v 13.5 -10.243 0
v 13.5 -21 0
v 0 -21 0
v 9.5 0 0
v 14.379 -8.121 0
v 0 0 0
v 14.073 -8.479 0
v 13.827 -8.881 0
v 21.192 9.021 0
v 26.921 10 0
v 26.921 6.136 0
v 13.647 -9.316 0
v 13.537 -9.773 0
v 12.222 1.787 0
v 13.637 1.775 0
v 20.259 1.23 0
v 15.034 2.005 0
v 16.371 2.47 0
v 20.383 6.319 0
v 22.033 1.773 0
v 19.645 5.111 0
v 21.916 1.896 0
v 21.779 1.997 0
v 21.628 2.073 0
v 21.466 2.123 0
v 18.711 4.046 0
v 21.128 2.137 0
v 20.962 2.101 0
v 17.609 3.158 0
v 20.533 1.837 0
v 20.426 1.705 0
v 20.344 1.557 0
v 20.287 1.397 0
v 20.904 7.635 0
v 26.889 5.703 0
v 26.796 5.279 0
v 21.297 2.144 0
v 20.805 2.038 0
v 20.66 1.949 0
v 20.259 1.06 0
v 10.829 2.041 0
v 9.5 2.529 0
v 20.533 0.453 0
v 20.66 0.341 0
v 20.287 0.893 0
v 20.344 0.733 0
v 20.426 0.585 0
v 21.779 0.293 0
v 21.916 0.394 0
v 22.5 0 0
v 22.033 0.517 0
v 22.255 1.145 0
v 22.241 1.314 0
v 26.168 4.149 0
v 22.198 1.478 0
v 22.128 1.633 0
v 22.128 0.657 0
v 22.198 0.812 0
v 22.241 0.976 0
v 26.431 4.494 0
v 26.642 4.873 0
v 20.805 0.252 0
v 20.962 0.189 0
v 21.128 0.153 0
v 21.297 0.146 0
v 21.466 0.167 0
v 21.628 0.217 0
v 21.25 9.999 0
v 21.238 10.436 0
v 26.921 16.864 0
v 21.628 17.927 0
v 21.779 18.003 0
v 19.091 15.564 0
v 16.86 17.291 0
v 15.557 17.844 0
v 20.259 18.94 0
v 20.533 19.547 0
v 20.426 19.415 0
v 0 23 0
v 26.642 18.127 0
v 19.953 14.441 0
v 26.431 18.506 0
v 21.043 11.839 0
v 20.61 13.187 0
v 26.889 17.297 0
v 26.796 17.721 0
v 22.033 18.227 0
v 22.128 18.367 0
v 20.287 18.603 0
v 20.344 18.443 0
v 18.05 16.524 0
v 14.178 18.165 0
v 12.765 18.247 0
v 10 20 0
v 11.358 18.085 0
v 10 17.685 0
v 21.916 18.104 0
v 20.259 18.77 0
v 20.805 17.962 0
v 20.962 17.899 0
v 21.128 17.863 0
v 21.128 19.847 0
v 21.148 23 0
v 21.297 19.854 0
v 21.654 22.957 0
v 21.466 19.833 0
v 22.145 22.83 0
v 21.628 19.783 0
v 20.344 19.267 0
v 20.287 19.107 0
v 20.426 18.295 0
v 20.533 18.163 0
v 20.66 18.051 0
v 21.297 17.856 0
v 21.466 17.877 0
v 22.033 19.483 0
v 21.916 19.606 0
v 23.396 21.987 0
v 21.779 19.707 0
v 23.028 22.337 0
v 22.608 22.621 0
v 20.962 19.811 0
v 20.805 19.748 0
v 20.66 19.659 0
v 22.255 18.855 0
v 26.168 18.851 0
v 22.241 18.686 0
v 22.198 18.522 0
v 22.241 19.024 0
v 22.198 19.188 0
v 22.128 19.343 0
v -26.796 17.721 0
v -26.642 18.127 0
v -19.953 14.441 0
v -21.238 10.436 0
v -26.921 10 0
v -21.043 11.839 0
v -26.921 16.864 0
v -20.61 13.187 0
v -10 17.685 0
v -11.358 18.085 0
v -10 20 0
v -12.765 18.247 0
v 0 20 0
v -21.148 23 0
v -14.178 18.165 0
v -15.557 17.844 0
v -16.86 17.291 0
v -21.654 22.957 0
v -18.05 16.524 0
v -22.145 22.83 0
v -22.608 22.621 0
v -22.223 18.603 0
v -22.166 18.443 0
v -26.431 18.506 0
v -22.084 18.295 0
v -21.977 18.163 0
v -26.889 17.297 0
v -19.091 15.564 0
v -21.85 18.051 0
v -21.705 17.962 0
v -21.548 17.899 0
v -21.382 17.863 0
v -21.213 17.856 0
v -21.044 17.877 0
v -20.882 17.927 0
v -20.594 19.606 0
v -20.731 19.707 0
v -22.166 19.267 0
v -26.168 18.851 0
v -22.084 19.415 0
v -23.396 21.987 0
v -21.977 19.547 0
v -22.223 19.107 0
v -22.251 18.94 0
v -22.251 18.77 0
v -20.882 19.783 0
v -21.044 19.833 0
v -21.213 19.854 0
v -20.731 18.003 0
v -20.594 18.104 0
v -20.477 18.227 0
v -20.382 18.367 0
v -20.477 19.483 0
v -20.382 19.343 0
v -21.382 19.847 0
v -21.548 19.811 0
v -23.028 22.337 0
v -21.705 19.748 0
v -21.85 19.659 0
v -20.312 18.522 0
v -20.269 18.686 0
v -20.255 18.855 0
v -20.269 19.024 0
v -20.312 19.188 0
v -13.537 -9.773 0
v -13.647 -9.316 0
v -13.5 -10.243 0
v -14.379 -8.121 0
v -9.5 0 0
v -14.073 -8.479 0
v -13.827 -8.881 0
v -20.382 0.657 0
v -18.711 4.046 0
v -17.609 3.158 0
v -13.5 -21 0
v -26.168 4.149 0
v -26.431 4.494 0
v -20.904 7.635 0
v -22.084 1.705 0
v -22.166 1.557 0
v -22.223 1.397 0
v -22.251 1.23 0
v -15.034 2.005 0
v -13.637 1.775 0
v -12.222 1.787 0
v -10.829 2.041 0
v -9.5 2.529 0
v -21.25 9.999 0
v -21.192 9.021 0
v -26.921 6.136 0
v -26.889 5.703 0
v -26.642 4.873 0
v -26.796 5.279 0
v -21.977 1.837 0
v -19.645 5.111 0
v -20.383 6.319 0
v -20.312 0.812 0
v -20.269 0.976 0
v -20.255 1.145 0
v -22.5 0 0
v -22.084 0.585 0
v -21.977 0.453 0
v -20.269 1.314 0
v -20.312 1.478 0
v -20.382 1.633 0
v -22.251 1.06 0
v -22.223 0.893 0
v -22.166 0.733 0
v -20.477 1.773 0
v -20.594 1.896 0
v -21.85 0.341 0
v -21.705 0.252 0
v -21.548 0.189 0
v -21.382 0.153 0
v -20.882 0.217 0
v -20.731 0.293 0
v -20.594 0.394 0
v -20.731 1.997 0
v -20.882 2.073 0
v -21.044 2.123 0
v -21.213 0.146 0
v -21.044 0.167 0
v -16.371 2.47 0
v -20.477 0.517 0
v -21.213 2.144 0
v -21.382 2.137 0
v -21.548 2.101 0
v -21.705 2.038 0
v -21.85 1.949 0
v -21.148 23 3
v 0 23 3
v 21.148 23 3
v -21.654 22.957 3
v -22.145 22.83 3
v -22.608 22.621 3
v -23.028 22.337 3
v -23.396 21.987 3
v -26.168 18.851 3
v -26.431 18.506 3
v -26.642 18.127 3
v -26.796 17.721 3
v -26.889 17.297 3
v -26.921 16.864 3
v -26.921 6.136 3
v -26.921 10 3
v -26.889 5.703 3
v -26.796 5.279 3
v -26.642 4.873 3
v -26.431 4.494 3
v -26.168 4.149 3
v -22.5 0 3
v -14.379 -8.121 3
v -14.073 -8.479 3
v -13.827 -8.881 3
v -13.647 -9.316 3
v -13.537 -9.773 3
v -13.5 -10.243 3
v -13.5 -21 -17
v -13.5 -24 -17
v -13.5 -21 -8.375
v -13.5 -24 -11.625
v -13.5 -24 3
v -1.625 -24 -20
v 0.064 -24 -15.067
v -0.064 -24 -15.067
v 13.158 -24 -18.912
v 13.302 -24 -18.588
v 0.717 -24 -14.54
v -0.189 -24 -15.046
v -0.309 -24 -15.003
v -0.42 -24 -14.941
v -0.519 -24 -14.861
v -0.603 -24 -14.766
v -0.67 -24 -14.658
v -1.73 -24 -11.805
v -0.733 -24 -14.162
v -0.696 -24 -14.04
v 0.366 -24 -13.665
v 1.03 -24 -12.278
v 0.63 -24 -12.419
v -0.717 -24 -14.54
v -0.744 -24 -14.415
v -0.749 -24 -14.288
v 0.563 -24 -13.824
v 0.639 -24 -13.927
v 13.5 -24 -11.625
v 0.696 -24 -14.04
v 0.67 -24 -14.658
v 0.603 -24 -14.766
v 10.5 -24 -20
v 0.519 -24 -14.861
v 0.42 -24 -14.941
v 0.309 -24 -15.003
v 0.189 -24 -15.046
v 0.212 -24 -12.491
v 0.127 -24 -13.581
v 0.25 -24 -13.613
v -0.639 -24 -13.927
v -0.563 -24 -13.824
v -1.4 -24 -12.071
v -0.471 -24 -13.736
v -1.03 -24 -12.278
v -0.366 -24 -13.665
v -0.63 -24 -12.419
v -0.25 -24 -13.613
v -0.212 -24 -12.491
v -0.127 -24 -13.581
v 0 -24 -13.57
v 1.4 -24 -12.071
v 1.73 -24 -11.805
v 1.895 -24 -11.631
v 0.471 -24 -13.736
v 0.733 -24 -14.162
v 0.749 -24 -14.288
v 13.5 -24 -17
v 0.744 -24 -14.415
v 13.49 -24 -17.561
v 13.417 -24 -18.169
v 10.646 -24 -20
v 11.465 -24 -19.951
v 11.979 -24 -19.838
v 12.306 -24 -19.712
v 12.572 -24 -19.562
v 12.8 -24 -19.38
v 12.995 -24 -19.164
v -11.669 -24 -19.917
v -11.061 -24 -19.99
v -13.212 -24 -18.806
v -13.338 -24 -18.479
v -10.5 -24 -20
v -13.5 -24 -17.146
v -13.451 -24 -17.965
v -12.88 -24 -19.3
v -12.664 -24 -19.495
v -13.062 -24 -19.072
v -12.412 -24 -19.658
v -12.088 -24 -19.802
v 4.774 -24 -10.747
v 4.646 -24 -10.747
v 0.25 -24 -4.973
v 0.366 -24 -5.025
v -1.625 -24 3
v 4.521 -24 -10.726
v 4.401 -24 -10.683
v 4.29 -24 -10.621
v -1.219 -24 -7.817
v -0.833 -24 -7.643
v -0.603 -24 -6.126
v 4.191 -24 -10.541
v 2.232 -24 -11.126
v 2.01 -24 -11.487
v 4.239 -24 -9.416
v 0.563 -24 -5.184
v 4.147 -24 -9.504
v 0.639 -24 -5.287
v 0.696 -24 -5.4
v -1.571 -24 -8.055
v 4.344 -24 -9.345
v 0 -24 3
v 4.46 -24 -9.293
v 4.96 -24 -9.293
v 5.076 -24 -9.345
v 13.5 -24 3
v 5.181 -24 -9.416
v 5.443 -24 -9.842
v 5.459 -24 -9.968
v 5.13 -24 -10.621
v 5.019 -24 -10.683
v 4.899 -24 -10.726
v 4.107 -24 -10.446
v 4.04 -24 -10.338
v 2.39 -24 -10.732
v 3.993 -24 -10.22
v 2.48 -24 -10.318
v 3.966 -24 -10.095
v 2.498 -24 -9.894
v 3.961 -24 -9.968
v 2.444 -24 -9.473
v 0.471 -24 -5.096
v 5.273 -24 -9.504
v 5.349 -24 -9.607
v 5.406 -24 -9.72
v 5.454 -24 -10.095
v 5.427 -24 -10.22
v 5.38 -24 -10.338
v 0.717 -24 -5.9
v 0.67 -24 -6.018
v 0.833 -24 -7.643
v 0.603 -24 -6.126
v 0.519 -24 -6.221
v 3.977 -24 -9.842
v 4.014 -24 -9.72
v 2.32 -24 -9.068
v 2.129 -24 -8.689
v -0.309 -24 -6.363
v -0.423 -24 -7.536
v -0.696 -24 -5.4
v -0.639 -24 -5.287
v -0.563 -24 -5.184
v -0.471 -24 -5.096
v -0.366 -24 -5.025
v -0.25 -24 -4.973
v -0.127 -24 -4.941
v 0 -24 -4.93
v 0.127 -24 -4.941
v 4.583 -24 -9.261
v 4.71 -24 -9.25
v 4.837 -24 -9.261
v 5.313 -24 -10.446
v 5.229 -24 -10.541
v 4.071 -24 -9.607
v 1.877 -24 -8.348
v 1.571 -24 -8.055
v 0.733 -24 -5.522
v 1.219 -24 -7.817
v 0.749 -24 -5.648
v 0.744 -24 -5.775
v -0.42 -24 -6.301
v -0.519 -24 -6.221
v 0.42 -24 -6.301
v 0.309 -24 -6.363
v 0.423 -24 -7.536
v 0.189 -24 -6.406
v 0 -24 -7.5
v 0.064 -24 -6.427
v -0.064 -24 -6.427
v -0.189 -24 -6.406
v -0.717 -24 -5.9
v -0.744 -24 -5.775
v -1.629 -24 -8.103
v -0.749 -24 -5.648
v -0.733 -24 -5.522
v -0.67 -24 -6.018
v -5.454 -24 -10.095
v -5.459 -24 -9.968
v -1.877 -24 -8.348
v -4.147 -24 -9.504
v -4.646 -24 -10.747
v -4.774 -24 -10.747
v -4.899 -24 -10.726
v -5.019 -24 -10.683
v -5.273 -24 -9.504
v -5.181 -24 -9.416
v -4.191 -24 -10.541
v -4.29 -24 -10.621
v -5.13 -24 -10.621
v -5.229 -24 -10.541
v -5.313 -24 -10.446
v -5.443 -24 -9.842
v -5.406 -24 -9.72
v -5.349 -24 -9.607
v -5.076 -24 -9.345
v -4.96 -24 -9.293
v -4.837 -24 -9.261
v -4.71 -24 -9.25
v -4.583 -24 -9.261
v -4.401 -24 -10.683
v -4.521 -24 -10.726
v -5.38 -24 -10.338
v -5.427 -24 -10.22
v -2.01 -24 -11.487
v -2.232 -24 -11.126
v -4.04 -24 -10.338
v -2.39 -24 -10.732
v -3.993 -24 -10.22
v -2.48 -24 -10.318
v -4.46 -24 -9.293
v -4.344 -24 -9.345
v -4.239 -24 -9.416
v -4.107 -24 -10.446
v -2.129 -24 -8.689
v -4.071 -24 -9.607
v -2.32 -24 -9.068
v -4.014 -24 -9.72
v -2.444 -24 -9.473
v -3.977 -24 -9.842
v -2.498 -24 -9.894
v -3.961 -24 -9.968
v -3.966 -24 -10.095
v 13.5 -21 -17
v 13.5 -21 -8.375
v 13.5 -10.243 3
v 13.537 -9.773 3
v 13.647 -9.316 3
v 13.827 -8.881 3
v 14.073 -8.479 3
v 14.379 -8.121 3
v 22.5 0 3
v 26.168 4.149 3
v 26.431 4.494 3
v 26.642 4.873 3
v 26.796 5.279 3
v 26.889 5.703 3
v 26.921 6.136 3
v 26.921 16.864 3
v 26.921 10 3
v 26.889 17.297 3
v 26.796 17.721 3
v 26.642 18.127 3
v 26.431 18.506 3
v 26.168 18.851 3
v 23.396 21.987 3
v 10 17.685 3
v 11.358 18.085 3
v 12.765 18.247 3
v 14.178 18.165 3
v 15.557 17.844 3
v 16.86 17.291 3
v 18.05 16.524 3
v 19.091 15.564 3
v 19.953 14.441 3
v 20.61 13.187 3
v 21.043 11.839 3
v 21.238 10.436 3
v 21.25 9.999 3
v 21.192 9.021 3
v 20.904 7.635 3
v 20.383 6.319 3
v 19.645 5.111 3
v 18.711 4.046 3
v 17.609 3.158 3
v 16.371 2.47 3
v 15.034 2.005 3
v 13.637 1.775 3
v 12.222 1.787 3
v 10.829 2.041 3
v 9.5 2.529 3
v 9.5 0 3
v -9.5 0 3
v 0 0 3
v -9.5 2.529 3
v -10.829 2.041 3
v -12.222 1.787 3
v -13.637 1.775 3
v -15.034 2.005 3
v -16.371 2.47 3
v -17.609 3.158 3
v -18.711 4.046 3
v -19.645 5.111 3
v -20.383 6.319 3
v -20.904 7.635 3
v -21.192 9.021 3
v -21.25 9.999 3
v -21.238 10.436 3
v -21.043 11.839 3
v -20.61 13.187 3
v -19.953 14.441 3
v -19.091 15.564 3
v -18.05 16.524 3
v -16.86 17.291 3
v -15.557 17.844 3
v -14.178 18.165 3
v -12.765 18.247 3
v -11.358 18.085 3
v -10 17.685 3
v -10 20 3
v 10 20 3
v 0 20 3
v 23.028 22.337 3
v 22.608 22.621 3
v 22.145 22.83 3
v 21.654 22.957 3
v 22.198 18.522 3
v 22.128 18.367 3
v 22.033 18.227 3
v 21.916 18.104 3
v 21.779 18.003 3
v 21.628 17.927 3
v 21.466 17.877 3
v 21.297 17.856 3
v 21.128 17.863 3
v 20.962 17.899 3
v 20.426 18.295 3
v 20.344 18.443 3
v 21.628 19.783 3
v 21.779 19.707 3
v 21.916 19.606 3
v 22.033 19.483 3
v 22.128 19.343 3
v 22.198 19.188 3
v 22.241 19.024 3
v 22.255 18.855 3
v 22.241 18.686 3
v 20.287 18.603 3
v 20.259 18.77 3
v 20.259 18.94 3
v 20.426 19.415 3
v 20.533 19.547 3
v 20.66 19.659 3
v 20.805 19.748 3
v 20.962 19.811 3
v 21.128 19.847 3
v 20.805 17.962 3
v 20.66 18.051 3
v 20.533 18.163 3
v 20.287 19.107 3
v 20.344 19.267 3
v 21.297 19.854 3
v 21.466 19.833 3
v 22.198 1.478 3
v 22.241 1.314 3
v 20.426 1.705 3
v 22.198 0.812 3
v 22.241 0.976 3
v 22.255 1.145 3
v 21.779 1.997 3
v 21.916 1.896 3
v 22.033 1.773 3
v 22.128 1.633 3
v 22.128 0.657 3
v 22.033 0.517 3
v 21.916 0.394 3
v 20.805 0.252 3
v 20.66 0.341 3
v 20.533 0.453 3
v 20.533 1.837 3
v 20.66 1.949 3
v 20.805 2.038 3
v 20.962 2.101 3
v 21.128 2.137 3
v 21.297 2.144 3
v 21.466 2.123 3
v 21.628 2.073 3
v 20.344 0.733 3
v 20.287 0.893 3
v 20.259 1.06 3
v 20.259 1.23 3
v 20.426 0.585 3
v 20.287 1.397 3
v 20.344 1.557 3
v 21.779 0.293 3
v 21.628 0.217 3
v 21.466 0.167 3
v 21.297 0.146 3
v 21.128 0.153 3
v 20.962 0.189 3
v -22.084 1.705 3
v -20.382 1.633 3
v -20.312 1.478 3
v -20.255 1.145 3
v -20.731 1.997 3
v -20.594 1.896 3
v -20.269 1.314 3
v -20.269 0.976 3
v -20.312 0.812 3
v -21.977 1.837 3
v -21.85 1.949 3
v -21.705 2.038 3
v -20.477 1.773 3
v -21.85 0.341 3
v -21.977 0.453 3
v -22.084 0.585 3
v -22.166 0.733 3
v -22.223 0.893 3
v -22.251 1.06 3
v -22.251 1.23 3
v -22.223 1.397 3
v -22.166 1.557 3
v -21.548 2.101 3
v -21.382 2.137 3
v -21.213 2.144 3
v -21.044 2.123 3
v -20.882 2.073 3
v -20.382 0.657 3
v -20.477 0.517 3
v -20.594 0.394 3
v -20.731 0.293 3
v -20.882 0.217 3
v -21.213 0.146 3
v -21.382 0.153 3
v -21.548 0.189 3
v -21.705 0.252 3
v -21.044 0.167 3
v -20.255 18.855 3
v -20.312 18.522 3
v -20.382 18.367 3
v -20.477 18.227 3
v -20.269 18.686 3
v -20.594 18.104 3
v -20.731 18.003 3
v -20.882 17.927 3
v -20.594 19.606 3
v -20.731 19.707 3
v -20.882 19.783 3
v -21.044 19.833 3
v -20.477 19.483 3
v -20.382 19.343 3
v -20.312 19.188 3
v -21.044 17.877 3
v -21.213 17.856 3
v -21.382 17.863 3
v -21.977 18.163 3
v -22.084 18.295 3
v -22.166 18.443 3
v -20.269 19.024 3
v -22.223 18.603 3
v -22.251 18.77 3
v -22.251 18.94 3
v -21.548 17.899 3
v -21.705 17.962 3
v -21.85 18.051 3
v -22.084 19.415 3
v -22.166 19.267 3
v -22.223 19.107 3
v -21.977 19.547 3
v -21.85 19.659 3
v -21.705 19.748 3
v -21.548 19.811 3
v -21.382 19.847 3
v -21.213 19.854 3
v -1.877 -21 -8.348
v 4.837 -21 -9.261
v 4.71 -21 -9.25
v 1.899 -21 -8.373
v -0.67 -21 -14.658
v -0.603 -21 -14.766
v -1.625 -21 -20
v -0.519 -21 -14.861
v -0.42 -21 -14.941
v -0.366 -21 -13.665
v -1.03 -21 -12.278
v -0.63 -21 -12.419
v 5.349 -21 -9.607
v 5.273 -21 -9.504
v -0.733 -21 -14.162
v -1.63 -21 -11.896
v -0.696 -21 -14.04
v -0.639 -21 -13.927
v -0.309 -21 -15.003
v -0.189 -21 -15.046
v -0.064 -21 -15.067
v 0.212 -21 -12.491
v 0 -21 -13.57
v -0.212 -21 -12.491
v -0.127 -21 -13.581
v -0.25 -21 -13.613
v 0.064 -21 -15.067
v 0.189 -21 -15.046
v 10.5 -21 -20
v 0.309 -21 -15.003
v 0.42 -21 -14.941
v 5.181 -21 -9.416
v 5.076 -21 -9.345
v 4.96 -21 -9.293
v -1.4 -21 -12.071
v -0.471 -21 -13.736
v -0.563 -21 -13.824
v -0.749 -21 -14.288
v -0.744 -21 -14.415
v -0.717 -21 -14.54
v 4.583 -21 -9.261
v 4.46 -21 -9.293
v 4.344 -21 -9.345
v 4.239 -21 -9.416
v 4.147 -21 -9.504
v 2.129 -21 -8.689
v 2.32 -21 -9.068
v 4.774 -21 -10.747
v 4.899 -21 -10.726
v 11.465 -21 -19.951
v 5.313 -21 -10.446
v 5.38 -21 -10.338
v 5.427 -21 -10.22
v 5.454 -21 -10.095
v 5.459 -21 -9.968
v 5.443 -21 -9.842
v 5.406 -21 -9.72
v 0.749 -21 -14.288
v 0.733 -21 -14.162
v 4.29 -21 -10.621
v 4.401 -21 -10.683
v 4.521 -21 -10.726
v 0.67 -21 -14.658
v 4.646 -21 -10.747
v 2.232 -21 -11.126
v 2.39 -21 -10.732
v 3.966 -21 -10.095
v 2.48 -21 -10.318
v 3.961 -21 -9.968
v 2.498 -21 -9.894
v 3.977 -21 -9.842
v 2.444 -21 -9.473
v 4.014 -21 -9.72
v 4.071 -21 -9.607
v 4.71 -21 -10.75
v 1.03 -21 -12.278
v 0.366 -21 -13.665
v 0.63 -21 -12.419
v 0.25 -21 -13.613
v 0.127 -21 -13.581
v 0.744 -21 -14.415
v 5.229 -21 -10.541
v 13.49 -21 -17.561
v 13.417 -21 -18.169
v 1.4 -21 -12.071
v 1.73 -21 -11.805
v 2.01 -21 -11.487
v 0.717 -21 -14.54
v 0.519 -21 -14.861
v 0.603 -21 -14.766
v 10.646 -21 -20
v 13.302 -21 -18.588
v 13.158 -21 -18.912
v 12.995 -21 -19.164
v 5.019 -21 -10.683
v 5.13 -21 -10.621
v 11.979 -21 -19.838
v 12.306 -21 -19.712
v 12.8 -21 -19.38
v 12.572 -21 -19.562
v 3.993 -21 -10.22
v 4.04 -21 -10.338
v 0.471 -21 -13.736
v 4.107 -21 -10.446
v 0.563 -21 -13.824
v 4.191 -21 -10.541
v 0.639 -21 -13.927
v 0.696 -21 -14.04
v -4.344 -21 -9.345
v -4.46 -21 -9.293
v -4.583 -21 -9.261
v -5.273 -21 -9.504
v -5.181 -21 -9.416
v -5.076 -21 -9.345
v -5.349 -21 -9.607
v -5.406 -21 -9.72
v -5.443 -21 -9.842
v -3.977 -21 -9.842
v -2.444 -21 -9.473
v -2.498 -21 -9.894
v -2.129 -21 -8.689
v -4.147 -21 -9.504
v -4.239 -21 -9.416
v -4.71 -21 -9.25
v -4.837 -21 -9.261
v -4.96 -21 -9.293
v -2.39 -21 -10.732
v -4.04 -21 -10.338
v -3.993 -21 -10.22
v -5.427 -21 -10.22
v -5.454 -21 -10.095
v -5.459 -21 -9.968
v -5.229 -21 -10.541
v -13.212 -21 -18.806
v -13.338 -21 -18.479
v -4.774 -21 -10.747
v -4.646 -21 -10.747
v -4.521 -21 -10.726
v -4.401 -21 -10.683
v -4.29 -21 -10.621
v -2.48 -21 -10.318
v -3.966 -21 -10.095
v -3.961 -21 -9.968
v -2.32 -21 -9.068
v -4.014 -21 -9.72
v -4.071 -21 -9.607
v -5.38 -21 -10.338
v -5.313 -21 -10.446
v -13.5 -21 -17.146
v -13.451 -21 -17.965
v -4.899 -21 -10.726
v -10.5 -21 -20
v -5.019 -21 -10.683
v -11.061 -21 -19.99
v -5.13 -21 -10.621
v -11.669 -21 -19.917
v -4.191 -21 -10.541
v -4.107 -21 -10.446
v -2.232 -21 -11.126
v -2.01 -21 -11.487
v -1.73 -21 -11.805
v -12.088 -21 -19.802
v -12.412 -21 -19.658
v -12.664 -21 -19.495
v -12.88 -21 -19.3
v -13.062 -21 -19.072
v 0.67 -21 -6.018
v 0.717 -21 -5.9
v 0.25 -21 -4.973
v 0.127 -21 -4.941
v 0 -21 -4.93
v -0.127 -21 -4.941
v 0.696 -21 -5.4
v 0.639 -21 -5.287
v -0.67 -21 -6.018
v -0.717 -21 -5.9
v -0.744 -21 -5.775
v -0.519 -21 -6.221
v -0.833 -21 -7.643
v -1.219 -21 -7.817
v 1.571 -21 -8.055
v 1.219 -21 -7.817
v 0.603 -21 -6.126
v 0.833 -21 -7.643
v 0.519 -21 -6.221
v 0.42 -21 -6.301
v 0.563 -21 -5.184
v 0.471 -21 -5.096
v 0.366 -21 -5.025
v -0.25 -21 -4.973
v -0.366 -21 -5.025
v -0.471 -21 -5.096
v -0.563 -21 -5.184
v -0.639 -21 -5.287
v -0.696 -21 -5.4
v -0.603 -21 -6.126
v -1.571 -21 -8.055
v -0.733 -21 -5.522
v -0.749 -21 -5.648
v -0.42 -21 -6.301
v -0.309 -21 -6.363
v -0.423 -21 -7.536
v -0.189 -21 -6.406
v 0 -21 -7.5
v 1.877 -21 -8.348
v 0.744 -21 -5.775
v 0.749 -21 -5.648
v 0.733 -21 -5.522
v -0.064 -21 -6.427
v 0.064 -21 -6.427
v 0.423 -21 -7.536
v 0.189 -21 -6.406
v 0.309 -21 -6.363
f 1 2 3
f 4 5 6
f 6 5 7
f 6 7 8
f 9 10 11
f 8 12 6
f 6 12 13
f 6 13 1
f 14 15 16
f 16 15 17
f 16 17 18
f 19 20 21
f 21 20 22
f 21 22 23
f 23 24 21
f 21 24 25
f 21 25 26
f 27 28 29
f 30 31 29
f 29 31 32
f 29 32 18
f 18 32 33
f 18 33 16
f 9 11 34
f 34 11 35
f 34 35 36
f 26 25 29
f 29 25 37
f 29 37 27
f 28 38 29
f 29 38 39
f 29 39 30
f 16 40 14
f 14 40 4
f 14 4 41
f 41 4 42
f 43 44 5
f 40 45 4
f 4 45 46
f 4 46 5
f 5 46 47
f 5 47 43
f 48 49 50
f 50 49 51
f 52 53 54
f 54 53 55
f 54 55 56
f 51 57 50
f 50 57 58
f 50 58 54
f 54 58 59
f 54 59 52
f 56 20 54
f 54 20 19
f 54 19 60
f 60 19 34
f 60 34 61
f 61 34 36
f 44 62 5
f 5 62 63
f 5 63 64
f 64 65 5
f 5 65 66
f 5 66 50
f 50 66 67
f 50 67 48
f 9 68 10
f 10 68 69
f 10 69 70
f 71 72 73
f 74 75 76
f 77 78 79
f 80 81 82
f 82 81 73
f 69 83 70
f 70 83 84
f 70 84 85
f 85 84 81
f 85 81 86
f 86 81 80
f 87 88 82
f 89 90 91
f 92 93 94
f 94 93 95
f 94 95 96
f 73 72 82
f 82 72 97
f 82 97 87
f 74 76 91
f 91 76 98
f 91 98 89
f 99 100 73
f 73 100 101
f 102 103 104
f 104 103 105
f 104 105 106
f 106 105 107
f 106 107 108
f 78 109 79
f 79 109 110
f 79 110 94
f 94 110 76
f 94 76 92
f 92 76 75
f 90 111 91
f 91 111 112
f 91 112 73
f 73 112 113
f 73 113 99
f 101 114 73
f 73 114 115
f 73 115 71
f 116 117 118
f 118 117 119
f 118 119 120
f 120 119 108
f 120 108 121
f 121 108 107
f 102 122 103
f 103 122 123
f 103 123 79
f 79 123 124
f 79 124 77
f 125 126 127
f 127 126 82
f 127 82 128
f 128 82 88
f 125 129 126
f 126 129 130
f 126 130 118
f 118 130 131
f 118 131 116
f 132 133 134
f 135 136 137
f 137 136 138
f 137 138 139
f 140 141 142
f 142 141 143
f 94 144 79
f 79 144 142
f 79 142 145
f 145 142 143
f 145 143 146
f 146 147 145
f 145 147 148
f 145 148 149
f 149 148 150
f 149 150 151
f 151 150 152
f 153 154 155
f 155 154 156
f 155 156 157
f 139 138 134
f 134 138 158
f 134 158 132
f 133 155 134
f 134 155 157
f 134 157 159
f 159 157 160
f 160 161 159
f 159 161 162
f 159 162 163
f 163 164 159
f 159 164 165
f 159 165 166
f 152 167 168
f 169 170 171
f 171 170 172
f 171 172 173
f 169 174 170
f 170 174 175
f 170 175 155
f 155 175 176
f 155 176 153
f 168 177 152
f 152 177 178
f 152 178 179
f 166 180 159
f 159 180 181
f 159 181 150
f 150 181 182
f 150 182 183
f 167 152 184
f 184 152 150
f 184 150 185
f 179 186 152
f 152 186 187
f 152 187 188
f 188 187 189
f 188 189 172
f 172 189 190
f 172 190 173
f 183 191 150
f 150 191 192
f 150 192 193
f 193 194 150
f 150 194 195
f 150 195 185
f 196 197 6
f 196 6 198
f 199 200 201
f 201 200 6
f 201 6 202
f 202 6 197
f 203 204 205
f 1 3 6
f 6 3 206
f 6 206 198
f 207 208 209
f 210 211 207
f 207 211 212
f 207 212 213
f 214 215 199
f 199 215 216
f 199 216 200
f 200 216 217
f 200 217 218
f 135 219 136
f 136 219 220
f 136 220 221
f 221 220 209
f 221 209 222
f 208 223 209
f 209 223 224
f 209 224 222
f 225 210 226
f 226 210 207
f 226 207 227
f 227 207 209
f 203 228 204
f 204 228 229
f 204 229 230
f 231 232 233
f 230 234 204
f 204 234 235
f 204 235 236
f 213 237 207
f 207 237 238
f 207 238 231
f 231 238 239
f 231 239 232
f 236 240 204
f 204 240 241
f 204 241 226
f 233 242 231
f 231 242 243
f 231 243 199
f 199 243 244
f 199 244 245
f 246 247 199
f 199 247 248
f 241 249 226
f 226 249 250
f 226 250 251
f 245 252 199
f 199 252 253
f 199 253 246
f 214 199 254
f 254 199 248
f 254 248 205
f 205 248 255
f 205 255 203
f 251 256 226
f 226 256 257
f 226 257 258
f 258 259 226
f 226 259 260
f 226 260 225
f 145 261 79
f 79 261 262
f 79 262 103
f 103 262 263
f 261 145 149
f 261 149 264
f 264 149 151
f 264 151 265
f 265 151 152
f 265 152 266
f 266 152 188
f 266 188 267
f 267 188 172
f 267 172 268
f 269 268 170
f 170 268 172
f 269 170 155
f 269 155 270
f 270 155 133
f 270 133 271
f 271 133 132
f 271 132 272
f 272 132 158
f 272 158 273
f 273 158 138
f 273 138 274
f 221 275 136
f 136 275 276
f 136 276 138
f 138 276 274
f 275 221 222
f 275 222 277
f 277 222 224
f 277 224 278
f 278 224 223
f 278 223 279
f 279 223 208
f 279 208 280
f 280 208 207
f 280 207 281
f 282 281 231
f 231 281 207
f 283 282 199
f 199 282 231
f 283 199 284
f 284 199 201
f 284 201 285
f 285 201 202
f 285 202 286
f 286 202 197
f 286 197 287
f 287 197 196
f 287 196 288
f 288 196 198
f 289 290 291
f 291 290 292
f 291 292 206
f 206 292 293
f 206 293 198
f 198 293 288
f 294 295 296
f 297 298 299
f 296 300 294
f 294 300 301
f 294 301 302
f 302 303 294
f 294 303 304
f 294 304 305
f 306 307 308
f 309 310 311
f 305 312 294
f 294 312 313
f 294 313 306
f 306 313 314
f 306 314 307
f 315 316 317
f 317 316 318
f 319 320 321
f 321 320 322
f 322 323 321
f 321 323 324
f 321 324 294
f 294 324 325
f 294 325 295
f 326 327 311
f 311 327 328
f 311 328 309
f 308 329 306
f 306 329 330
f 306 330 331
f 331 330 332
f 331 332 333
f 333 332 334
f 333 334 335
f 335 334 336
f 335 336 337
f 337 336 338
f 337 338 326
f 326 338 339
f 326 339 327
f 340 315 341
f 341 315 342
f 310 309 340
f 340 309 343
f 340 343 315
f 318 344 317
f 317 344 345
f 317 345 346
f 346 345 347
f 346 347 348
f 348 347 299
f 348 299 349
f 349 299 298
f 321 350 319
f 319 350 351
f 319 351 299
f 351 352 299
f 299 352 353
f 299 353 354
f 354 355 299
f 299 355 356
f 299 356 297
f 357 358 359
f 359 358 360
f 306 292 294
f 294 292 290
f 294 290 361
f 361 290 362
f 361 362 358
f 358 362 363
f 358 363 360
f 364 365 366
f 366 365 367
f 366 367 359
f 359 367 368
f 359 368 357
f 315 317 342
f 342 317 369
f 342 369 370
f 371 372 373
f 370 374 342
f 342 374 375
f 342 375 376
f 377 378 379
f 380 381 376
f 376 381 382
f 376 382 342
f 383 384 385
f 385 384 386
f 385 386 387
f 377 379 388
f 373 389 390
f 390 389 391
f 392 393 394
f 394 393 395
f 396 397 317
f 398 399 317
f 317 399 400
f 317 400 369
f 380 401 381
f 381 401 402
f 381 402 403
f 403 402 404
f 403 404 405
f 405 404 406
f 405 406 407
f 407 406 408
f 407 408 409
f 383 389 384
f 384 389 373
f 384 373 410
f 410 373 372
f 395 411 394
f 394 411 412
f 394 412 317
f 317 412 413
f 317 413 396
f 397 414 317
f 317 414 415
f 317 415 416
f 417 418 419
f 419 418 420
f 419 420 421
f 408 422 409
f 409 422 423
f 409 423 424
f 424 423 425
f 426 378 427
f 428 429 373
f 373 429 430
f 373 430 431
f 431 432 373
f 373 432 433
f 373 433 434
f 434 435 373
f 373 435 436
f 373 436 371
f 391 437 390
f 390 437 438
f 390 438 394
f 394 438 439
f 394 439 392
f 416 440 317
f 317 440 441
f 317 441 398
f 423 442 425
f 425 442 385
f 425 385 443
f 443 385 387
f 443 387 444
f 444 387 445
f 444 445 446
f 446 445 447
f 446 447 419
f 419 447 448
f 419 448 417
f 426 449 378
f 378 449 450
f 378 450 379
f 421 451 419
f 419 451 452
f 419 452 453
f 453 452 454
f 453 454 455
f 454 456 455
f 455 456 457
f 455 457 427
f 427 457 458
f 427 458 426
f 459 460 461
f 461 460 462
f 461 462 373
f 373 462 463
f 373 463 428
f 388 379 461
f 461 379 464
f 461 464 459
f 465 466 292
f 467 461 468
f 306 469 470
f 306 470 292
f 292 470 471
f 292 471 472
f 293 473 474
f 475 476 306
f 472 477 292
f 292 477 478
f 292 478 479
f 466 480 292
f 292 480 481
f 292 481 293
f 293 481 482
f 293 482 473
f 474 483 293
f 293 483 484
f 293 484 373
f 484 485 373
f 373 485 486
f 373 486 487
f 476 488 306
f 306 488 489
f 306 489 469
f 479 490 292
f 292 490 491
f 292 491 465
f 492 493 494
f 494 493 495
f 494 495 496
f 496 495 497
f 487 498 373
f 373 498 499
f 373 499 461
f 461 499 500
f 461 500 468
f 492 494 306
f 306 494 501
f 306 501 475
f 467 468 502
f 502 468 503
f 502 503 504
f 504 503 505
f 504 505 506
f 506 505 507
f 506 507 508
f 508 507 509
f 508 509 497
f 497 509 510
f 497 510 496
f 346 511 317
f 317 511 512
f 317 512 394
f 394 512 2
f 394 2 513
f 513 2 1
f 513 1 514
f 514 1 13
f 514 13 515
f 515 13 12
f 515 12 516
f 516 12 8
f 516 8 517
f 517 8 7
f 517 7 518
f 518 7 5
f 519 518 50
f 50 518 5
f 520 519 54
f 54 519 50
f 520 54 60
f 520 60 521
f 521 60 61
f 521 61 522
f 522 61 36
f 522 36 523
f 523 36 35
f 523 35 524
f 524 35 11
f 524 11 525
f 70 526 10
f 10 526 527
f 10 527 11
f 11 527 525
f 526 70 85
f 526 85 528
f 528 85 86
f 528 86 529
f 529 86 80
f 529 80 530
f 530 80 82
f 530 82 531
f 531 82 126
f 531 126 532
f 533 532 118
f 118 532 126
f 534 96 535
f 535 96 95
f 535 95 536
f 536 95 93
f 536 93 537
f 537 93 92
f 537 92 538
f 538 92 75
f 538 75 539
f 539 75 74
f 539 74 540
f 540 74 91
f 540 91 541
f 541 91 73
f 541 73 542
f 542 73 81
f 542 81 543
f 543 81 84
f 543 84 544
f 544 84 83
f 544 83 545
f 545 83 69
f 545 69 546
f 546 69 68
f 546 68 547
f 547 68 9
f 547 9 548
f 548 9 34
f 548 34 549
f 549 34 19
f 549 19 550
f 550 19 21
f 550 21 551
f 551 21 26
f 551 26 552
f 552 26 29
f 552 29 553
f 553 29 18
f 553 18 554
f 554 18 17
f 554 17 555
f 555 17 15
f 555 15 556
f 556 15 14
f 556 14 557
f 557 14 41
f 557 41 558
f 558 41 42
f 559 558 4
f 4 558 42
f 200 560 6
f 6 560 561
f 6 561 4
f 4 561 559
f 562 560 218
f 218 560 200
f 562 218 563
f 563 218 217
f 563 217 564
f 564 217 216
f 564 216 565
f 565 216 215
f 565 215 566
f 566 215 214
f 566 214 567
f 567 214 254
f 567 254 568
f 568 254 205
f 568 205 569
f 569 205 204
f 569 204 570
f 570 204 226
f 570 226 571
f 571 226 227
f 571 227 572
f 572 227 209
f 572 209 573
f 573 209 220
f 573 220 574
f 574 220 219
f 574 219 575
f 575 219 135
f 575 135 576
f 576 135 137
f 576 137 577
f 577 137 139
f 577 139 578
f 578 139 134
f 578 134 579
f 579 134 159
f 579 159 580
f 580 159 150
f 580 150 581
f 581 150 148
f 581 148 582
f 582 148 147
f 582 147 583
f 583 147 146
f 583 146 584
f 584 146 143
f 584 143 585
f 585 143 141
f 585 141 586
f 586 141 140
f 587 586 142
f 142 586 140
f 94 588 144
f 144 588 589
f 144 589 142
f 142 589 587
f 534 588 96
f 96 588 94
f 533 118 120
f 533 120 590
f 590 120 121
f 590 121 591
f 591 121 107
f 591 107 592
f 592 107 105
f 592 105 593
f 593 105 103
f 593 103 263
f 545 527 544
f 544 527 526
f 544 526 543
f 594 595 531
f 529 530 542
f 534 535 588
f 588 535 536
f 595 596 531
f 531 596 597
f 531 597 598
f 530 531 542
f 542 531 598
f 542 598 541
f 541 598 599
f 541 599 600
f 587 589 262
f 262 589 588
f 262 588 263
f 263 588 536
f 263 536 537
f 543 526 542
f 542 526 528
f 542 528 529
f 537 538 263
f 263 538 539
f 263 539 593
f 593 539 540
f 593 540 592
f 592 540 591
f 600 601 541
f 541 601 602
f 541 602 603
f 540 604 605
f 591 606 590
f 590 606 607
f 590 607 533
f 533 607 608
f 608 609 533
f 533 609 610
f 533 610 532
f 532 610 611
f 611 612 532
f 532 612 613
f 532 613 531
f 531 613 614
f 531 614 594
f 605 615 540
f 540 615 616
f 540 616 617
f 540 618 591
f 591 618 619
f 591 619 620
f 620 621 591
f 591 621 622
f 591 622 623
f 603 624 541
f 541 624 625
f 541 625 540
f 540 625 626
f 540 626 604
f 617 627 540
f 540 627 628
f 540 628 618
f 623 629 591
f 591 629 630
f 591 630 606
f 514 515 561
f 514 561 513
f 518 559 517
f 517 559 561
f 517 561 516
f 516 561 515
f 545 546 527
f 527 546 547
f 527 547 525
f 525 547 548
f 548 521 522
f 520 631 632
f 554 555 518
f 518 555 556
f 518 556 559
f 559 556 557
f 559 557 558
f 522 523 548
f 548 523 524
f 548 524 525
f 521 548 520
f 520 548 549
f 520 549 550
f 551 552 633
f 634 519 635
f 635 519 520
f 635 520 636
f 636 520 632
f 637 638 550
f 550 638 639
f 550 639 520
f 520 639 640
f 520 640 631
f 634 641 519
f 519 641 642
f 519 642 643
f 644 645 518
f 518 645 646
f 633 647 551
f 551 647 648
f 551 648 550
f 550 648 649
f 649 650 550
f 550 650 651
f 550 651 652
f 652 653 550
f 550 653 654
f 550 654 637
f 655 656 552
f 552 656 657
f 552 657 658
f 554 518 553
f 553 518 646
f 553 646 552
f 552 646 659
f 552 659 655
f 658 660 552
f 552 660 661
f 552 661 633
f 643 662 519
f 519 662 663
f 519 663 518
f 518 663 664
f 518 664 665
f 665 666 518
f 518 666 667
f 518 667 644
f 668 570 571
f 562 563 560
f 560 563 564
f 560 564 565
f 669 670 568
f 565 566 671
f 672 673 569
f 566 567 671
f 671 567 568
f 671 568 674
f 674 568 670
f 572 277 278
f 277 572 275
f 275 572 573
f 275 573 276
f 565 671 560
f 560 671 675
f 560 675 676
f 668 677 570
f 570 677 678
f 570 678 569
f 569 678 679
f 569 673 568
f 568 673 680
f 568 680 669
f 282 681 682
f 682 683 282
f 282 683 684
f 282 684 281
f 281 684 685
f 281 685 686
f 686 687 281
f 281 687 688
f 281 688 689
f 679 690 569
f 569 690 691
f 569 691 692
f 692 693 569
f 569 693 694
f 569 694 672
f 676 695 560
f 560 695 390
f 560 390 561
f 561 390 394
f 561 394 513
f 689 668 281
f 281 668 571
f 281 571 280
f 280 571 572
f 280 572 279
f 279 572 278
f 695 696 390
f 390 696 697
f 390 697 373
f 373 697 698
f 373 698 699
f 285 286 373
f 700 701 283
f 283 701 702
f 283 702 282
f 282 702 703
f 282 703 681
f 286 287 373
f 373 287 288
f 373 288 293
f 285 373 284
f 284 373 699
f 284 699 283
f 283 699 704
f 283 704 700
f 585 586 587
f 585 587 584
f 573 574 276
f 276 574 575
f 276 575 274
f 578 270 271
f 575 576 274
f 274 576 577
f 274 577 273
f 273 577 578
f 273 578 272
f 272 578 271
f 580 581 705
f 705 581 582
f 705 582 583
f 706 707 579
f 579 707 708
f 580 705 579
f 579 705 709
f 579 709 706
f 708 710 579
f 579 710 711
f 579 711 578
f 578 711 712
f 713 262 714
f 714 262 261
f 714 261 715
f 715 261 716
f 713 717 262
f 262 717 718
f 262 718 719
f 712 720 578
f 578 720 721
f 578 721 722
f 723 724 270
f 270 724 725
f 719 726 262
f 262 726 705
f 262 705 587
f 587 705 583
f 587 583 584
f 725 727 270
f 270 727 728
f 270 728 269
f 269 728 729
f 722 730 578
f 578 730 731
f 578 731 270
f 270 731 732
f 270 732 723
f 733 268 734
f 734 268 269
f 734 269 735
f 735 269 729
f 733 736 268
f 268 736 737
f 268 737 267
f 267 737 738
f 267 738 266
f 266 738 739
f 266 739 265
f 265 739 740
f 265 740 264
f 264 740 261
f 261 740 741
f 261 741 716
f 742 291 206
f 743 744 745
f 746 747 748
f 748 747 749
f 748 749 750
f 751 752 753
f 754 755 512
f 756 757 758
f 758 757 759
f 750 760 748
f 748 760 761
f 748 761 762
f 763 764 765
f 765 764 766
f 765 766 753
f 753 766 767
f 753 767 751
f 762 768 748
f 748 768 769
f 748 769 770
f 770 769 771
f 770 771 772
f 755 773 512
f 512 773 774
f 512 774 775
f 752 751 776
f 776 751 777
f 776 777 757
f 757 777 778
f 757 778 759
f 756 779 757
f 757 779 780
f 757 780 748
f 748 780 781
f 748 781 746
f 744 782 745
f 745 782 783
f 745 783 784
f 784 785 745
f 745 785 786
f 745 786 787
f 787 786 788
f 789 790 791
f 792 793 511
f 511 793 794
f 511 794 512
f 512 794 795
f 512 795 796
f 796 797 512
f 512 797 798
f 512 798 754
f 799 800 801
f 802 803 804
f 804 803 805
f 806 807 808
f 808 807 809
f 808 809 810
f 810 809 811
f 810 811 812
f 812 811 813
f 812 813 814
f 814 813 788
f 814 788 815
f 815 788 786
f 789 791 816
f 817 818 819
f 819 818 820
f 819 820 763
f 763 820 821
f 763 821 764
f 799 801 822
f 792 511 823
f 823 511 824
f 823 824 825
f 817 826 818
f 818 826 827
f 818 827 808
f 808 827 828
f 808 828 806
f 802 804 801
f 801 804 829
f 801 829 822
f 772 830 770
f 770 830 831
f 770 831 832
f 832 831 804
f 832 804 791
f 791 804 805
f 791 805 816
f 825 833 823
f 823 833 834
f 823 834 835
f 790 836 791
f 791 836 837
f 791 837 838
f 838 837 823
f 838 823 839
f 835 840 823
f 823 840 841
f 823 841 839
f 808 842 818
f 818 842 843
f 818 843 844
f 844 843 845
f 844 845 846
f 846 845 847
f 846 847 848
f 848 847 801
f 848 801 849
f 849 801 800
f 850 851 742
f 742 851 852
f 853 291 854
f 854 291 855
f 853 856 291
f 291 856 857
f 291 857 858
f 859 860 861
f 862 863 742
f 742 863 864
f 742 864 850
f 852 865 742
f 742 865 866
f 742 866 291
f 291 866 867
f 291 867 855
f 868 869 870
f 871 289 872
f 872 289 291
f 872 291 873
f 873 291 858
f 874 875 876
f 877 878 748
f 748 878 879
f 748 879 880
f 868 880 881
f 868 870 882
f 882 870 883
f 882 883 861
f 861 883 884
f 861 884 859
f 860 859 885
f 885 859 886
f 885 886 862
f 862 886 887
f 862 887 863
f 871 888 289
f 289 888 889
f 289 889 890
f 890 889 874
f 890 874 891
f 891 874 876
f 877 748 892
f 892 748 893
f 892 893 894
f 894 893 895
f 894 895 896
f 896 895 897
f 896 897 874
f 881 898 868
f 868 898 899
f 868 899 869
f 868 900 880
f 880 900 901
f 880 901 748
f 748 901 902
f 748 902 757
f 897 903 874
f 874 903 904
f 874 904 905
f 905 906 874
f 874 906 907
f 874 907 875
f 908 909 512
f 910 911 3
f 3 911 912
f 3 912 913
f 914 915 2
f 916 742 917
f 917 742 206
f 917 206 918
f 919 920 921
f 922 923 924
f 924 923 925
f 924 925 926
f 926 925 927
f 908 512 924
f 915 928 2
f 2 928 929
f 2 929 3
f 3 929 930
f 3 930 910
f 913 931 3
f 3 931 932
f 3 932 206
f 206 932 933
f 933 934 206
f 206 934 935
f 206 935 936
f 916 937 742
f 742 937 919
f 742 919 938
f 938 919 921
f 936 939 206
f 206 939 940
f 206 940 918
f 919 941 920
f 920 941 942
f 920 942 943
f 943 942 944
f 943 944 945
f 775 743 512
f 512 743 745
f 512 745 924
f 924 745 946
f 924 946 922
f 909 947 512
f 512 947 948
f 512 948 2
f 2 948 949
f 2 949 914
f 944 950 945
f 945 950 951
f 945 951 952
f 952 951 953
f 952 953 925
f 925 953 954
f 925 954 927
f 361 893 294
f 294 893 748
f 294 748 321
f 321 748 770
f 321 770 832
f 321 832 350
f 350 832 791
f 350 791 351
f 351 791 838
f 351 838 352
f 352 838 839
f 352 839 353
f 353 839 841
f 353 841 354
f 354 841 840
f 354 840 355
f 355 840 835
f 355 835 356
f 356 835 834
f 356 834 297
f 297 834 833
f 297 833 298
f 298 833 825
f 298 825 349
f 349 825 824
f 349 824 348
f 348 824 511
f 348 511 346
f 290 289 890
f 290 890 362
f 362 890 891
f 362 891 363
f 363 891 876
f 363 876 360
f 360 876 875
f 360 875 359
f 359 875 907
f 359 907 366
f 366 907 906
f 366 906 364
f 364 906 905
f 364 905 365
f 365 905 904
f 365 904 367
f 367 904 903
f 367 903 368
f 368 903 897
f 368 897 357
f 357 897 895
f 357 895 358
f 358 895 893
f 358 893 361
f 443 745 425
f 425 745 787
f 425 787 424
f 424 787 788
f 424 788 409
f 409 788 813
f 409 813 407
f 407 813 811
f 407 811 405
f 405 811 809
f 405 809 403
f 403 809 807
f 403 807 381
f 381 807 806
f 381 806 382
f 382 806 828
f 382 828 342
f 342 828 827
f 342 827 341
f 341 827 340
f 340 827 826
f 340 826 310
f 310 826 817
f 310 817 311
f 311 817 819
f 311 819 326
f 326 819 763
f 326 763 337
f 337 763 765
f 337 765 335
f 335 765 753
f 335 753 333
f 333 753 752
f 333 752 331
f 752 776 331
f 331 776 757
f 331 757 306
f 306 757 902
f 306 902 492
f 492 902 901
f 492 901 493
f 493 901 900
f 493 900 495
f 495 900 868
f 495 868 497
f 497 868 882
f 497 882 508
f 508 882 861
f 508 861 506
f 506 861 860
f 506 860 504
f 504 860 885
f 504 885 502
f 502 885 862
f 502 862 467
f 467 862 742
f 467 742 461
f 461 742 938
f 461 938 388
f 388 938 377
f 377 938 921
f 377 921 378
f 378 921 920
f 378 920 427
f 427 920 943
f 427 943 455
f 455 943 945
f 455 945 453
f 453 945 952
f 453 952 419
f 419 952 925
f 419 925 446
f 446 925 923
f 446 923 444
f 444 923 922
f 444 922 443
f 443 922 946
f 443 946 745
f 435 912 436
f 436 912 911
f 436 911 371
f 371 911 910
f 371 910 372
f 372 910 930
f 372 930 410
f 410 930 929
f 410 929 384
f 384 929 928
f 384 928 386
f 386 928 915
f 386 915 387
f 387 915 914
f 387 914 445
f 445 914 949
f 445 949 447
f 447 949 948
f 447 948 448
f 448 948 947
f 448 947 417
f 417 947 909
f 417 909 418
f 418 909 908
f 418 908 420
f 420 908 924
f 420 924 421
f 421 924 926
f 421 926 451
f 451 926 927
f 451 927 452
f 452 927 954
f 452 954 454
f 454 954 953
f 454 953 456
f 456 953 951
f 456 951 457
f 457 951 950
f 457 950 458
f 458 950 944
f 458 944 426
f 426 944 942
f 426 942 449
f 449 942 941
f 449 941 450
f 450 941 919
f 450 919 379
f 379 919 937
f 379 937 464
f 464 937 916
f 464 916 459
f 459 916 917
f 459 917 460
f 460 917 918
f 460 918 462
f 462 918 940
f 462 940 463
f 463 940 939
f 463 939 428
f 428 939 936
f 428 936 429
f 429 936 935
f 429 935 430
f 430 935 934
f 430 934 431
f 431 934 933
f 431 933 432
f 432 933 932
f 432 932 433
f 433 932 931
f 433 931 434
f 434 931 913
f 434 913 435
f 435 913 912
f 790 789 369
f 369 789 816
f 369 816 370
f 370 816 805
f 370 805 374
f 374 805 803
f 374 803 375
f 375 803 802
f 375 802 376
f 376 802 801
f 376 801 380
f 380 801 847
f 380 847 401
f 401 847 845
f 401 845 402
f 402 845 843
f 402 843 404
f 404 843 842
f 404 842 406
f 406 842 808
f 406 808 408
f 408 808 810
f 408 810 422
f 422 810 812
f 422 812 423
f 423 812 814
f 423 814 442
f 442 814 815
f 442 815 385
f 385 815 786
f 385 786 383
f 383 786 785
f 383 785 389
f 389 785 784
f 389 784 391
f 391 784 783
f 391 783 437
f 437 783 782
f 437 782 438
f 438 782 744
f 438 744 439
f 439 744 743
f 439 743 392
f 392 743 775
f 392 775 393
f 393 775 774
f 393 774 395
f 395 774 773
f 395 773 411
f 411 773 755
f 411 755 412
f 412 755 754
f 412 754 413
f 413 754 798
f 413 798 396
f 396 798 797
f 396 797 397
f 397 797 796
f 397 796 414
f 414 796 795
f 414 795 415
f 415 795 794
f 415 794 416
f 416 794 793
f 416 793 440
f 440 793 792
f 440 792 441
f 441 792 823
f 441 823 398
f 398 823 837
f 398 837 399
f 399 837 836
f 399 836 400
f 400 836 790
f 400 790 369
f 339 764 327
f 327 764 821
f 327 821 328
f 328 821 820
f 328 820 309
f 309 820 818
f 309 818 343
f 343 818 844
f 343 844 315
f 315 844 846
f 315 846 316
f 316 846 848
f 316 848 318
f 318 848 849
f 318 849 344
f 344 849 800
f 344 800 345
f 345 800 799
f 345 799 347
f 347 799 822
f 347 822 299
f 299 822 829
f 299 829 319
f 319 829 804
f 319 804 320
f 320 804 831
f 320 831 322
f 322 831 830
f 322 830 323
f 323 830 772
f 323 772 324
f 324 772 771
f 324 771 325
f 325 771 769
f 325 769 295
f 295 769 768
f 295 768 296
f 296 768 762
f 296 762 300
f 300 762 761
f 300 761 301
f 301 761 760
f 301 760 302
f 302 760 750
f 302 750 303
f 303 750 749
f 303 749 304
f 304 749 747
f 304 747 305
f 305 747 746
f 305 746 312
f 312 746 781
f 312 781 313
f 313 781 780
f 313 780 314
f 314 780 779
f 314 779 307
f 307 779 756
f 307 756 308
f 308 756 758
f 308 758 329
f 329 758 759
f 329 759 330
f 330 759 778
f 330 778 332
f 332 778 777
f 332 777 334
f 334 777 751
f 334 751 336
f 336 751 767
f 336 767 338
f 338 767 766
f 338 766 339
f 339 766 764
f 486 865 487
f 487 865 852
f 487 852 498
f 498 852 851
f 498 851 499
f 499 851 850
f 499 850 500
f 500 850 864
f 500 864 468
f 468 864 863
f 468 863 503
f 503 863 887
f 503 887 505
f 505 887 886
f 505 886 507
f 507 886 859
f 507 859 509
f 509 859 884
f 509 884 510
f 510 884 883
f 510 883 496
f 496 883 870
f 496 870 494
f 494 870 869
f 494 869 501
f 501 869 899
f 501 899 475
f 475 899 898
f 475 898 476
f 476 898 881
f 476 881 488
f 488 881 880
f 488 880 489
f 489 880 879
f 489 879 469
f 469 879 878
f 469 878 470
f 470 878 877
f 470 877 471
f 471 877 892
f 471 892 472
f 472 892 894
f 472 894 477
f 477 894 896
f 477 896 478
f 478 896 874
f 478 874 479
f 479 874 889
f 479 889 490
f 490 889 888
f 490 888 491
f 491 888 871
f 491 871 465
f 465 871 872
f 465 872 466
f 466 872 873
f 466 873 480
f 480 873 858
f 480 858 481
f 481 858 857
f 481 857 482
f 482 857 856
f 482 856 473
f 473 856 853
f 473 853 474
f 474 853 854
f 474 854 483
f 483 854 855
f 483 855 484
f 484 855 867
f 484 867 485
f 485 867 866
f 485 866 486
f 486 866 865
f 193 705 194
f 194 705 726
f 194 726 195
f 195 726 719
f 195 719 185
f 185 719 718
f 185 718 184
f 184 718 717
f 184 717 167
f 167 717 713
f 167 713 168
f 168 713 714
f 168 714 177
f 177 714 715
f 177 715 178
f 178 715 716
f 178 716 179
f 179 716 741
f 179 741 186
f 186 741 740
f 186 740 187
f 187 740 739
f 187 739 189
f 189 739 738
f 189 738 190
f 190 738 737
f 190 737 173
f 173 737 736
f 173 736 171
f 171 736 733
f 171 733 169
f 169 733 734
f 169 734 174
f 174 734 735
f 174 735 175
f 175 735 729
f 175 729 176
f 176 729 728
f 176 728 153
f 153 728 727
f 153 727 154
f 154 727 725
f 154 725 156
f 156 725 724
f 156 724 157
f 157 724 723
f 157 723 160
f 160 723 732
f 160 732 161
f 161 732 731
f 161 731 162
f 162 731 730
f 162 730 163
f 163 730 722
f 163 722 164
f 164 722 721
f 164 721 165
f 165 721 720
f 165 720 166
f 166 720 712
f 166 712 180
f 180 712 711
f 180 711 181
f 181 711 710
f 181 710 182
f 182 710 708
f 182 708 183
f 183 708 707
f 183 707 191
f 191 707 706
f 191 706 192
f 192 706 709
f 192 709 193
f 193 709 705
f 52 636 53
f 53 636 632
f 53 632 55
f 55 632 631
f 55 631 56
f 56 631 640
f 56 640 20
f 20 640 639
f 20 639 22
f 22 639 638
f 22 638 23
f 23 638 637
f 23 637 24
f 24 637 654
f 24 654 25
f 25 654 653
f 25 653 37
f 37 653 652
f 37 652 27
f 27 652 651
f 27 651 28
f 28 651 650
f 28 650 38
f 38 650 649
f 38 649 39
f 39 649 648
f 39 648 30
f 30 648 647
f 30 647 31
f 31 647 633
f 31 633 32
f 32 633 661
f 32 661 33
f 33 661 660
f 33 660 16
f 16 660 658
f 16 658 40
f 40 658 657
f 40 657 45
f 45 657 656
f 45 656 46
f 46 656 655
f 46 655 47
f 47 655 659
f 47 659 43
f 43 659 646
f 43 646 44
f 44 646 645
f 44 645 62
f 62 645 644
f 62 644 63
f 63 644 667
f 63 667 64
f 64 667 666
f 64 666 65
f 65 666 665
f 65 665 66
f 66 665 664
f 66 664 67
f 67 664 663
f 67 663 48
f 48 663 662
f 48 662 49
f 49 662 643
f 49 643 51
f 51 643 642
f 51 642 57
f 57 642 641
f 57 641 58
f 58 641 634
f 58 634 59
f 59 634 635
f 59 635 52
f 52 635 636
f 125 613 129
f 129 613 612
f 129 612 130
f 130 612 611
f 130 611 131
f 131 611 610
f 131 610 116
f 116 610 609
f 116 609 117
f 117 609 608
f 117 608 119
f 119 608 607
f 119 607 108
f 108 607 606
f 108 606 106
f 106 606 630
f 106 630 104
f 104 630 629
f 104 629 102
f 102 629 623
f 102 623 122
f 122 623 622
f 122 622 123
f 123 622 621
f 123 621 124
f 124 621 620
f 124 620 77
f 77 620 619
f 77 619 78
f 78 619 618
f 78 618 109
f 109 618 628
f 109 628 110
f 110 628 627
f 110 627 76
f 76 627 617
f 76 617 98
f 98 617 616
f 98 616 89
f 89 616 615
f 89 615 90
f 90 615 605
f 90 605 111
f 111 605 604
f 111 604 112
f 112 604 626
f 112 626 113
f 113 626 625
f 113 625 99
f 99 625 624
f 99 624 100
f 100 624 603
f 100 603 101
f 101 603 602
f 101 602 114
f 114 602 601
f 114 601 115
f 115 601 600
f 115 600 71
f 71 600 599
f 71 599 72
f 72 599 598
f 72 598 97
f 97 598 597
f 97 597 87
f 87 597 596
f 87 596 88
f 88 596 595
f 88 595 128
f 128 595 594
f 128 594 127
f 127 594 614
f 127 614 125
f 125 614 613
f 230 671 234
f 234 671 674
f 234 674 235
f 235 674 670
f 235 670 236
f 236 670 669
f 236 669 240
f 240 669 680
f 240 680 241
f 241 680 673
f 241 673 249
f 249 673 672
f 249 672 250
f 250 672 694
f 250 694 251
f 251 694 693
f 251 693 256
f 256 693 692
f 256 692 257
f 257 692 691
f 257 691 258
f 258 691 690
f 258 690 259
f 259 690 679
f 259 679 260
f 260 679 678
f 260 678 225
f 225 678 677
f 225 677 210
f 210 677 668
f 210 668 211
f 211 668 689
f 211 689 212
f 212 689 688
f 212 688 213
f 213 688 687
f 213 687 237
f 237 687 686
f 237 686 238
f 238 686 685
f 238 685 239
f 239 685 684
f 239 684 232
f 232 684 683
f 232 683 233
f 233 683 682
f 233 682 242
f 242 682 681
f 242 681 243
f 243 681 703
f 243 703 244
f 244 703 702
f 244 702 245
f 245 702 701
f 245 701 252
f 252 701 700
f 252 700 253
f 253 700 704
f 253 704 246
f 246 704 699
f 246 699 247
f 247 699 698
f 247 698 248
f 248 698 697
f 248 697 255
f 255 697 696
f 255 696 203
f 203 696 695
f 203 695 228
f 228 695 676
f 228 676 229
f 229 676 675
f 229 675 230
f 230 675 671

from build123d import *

# Parameters (mm, degrees)
EXTRUDE_1_DEPTH     = 3
SKETCH_2_W          = 27
SKETCH_2_H          = 3
EXTRUDE_2_DEPTH     = 20
FILLET_1_SIZE       = 3
FILLET_2_SIZE       = 3
SKETCH_3_R          = 2.5
SKETCH_3_R_2        = 0.75
CUT_EXTRUDE_1_DEPTH = 20
SKETCH_4_R          = 1
CUT_EXTRUDE_2_DEPTH = 10


with BuildPart() as part:
    # 草图1 → 凸台-拉伸1 (new body)
    with BuildSketch(Plane.XY):
        with BuildLine():
            Line((-10, 23), (-21.14797242, 23))
            ThreePointArc((-21.14797242, 23), (-22.380603493, 22.735072328), (-23.395529179, 21.987080425))
            Line((-23.395529179, 21.987080425), (-26.168091228, 18.851077224))
            ThreePointArc((-26.168091228, 18.851077224), (-26.72612445, 17.926383199), (-26.920534469, 16.863996799))
            Line((-26.920534469, 16.863996799), (-26.920534469, 6.136003201))
            ThreePointArc((-26.920534469, 6.136003201), (-26.72612445, 5.073616801), (-26.168091228, 4.148922776))
            Line((-26.168091228, 4.148922776), (-22.5, 0))
            Line((-22.5, 0), (-14.378679656, -8.121320344))
            ThreePointArc((-14.378679656, -8.121320344), (-13.728361402, -9.09459039), (-13.5, -10.242640687))
            Line((-13.5, -10.242640687), (-13.5, -24))
            Line((-13.5, -24), (13.5, -24))
            Line((13.5, -24), (13.5, -10.242640687))
            ThreePointArc((13.5, -10.242640687), (13.728361402, -9.09459039), (14.378679656, -8.121320344))
            Line((14.378679656, -8.121320344), (22.5, 0))
            Line((22.5, 0), (26.168091228, 4.148922776))
            ThreePointArc((26.168091228, 4.148922776), (26.72612445, 5.073616801), (26.920534469, 6.136003201))
            Line((26.920534469, 6.136003201), (26.920534469, 16.863996799))
            ThreePointArc((26.920534469, 16.863996799), (26.72612445, 17.926383199), (26.168091228, 18.851077224))
            Line((26.168091228, 18.851077224), (23.395529179, 21.987080425))
            ThreePointArc((23.395529179, 21.987080425), (22.380603493, 22.735072328), (21.14797242, 23))
            Line((21.14797242, 23), (10, 23))
            Line((10, 23), (-10, 23))
        make_face()
        with BuildLine():
            Line((-10, 20), (10, 20))
            Line((10, 20), (10, 17.685213074))
            ThreePointArc((10, 17.685213074), (21.245514188, 9.727978361), (9.5, 2.529223601))
            Line((9.5, 2.529223601), (9.5, 0))
            Line((9.5, 0), (-9.5, 0))
            Line((-9.5, 0), (-9.5, 2.529223601))
            ThreePointArc((-9.5, 2.529223601), (-21.245514188, 9.727978361), (-10, 17.685213074))
            Line((-10, 17.685213074), (-10, 20))
        make_face(mode=Mode.SUBTRACT)
    extrude(amount=EXTRUDE_1_DEPTH)

    # 草图2 → 凸台-拉伸2 (add)
    with BuildSketch(Plane(origin=(0, 0, 0), x_dir=(-1, 0, 0), z_dir=(0, 0, -1))):
        with Locations((0, -22.5)):
            Rectangle(SKETCH_2_W, SKETCH_2_H)
    extrude(amount=EXTRUDE_2_DEPTH)

    # 圆角1
    # a fillet whose section is not a circle: 3 mm, written as the material it takes off along each edge
    with BuildSketch(Plane(origin=(13.5, -31.5, -20), x_dir=(-1, 0, 0), z_dir=(0, 1, 0))) as fillet_1_piece_1:
        with BuildLine():
            add(Edge.make_bspline([(FILLET_1_SIZE, 0), (FILLET_1_SIZE * 0.831801948466, 0), (FILLET_1_SIZE * 0.663603896932, 0), (FILLET_1_SIZE * 0.292893218813, FILLET_1_SIZE * 0.0716919198361), (FILLET_1_SIZE * 0.0716919198361, FILLET_1_SIZE * 0.292893218813), (0, FILLET_1_SIZE * 0.663603896932), (0, FILLET_1_SIZE * 0.831801948466), (0, FILLET_1_SIZE)], knots=[0, 0, 0, 0, 0, 0, 0.5, 0.5, 1, 1, 1, 1, 1, 1], degree=5))
            Line((0, FILLET_1_SIZE), (0, 0))
            Line((0, 0), (FILLET_1_SIZE, 0))
        make_face()
    extrude(amount=18, mode=Mode.SUBTRACT)

    # 圆角2
    # a fillet whose section is not a circle: 3 mm, written as the material it takes off along each edge
    with BuildSketch(Plane(origin=(-13.5, -13.5, -20), x_dir=(0, 0, 1), z_dir=(0, -1, 0))) as fillet_2_piece_1:
        with BuildLine():
            add(Edge.make_bspline([(FILLET_2_SIZE, 0), (FILLET_2_SIZE * 0.831801948466, 0), (FILLET_2_SIZE * 0.663603896932, 0), (FILLET_2_SIZE * 0.292893218813, -FILLET_2_SIZE * 0.0716919198361), (FILLET_2_SIZE * 0.0716919198361, -FILLET_2_SIZE * 0.292893218813), (0, -FILLET_2_SIZE * 0.663603896932), (0, -FILLET_2_SIZE * 0.831801948466), (0, -FILLET_2_SIZE)], knots=[0, 0, 0, 0, 0, 0, 0.5, 0.5, 1, 1, 1, 1, 1, 1], degree=5))
            Line((0, -FILLET_2_SIZE), (0, 0))
            Line((0, 0), (FILLET_2_SIZE, 0))
        make_face()
    extrude(amount=18, mode=Mode.SUBTRACT)

    # 草图3 → 切除-拉伸1 (cut)
    with BuildSketch(Plane(origin=(0, -21, 0), x_dir=(1, 0, 0), z_dir=(0, 1, 0))):
        with Locations(Location((0, 10, 0), (0, 0, 270))):
            Circle(SKETCH_3_R)
        with Locations(Location((-4.71, 10, 0), (0, 0, 270))):
            Circle(SKETCH_3_R_2)
        with Locations(Location((0, 14.32, 0), (0, 0, 270))):
            Circle(SKETCH_3_R_2)
        with Locations(Location((0, 5.68, 0), (0, 0, 270))):
            Circle(SKETCH_3_R_2)
        with Locations(Location((4.71, 10, 0), (0, 0, 270))):
            Circle(SKETCH_3_R_2)
    extrude(amount=-CUT_EXTRUDE_1_DEPTH, mode=Mode.SUBTRACT)

    # 草图4 → 切除-拉伸2 (cut)
    with BuildSketch(Plane.XY.offset(3)):
        with Locations((-21.255, 18.855)):
            Circle(SKETCH_4_R)
        with Locations((-21.255, 1.145)):
            Circle(SKETCH_4_R)
        with Locations((21.255, 18.855)):
            Circle(SKETCH_4_R)
        with Locations((21.255, 1.145)):
            Circle(SKETCH_4_R)
    extrude(amount=-CUT_EXTRUDE_2_DEPTH, mode=Mode.SUBTRACT)


solid = part.part
